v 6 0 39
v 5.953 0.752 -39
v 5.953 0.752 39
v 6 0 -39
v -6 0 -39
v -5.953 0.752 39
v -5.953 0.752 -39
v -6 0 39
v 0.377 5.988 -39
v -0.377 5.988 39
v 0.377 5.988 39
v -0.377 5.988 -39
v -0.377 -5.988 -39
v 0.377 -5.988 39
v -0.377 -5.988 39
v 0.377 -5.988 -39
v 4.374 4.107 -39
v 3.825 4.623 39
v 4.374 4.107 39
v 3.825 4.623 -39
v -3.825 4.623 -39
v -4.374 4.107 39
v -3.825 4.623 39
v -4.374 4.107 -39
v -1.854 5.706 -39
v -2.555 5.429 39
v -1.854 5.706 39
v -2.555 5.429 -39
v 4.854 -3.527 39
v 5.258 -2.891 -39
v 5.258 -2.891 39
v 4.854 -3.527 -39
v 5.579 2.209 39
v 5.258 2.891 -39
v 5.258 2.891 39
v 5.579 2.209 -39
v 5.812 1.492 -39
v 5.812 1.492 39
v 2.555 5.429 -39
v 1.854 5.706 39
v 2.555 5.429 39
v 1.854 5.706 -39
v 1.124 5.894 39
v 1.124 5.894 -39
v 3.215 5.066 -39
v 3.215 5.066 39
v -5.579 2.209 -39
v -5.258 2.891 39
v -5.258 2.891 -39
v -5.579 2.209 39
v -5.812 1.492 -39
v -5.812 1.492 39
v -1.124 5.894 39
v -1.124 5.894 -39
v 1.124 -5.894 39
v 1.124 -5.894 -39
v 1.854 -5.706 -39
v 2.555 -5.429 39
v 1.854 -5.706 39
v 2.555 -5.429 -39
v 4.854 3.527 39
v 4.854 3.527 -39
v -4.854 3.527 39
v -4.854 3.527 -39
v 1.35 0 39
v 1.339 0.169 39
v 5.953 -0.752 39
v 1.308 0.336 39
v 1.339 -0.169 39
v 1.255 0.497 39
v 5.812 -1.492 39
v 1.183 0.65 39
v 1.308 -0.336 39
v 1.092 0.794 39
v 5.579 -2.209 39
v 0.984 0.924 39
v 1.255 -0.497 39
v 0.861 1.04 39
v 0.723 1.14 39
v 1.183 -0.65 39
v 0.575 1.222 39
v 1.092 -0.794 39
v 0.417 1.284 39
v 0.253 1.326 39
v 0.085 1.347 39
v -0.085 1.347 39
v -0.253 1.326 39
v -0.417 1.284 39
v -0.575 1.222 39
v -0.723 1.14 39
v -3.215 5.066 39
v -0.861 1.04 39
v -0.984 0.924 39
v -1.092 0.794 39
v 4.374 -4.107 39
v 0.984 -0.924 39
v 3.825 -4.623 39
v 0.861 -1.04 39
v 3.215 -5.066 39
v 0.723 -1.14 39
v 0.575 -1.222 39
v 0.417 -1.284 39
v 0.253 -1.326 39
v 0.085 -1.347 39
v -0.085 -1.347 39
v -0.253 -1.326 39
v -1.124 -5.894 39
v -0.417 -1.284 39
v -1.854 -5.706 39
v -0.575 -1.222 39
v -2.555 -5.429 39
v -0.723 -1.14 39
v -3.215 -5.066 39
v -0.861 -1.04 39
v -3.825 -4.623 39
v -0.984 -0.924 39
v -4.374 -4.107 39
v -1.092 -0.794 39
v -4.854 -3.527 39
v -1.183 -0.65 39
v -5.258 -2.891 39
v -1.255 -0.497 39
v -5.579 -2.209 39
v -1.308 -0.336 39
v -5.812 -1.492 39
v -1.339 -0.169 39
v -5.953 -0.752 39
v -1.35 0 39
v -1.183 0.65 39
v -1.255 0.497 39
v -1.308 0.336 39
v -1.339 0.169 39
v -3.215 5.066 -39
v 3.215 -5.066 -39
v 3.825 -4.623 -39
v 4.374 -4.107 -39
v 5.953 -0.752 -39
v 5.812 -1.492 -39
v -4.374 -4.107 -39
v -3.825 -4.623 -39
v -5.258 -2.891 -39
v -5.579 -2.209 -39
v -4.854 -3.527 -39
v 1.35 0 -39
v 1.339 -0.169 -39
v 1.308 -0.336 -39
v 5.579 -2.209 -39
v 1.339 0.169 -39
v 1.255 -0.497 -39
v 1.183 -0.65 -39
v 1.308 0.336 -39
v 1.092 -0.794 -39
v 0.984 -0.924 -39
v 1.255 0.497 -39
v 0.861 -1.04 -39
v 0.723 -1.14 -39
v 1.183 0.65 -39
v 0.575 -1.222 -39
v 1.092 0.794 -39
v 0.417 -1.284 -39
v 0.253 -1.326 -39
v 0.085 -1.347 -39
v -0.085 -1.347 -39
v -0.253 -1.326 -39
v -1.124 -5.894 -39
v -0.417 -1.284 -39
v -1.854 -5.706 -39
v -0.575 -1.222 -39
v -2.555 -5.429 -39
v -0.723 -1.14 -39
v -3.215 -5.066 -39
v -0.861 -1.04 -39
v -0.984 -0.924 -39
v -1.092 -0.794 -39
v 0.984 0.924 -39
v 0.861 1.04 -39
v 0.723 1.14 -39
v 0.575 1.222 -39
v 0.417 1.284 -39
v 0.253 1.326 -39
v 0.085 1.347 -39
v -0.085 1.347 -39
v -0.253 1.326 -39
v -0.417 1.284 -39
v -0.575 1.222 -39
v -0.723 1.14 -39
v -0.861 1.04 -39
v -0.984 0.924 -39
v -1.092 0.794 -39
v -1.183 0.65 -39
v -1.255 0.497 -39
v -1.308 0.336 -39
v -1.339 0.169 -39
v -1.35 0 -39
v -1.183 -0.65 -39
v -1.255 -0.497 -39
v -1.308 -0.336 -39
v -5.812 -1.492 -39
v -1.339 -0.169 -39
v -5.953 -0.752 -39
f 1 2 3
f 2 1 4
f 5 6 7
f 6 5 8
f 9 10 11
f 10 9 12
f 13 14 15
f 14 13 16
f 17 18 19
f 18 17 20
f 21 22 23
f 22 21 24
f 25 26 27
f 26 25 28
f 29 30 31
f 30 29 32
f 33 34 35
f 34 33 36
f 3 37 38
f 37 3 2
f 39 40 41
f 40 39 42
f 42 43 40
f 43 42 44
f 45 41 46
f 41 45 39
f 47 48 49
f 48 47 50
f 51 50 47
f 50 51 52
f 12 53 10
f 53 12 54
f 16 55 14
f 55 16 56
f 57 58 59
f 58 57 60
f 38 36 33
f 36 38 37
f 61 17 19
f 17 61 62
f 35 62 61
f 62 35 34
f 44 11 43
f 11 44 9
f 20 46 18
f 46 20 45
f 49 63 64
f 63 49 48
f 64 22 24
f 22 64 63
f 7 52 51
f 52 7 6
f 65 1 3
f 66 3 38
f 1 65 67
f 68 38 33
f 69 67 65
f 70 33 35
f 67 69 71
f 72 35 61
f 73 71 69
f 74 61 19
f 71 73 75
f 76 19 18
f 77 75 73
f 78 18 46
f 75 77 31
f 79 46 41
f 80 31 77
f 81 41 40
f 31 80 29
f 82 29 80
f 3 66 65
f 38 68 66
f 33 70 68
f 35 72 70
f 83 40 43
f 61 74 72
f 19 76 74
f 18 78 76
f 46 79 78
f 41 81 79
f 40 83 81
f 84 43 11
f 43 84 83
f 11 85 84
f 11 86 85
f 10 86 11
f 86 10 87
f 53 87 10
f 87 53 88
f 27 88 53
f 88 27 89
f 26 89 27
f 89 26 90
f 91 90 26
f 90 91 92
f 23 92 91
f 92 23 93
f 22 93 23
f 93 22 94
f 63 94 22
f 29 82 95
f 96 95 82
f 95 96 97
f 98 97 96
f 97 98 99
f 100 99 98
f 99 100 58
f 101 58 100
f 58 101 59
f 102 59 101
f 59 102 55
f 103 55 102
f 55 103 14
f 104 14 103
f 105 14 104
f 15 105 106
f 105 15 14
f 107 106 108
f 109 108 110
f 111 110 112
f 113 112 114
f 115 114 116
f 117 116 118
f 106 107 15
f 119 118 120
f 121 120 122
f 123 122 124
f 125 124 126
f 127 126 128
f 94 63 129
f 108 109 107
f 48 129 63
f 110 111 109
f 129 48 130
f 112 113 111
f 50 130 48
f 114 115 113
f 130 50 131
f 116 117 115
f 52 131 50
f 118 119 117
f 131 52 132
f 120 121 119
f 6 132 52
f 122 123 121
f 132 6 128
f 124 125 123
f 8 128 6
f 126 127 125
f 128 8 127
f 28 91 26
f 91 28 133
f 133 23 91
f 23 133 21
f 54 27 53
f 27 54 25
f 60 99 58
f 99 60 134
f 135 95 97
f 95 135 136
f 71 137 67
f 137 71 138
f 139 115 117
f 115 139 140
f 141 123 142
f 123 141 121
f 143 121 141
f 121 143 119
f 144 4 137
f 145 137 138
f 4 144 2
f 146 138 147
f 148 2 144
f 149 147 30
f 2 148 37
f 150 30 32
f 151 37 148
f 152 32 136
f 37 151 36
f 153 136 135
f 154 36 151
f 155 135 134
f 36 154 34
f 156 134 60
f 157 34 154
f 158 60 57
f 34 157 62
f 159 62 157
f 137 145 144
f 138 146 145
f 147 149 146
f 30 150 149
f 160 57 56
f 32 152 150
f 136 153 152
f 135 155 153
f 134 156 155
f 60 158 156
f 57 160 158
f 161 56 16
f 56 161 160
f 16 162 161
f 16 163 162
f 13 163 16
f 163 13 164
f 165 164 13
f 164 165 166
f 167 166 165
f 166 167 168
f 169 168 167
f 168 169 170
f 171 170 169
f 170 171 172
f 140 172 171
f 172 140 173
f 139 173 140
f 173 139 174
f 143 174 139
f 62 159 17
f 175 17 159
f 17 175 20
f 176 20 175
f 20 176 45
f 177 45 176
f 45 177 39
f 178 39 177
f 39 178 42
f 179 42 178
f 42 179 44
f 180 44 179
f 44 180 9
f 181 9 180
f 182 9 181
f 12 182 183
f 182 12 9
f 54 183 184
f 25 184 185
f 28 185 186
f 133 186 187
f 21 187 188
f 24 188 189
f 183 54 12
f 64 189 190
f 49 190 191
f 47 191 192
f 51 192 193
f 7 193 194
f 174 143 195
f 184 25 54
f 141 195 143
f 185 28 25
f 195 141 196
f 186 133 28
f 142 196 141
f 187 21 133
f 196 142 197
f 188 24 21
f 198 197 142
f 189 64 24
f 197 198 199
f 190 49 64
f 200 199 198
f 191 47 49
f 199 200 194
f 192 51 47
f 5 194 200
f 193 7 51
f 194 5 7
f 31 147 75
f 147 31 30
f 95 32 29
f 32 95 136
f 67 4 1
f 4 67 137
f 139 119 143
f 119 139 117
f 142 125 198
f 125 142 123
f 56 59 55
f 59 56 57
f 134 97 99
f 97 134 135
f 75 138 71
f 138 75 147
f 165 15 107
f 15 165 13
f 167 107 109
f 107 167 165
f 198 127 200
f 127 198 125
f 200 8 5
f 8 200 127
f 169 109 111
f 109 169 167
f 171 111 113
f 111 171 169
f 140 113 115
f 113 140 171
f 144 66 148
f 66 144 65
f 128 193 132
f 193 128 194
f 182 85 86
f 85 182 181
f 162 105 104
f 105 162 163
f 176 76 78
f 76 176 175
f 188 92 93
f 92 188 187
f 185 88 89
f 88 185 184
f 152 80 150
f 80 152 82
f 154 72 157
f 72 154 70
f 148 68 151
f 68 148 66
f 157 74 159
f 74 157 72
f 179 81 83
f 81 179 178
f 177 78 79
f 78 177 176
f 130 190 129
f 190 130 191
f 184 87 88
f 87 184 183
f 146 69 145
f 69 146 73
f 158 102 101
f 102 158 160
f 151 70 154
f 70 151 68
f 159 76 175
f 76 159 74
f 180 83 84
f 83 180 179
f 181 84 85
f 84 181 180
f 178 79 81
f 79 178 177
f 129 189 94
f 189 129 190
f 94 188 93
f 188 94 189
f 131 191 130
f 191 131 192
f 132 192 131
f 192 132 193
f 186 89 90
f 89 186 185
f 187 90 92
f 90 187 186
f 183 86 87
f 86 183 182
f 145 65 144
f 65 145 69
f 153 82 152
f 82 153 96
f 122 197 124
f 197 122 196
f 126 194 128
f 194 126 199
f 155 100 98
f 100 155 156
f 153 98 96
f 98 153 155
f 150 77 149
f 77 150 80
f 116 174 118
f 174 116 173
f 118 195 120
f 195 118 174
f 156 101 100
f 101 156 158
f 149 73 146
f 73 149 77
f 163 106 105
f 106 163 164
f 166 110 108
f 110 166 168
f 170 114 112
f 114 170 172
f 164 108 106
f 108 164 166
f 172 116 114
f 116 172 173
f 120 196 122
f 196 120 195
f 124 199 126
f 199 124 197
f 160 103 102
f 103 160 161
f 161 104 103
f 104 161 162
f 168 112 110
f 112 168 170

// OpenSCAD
$fn = 50;


difference() {
	union() {
		translate(v = [0, 0, -39.0000000000]) {
			cylinder(h = 78, r = 6.0000000000);
		}
	}
	union() {
		translate(v = [0, 0, -100.0000000000]) {
			cylinder(h = 200, r = 1.3500000000);
		}
	}
}
